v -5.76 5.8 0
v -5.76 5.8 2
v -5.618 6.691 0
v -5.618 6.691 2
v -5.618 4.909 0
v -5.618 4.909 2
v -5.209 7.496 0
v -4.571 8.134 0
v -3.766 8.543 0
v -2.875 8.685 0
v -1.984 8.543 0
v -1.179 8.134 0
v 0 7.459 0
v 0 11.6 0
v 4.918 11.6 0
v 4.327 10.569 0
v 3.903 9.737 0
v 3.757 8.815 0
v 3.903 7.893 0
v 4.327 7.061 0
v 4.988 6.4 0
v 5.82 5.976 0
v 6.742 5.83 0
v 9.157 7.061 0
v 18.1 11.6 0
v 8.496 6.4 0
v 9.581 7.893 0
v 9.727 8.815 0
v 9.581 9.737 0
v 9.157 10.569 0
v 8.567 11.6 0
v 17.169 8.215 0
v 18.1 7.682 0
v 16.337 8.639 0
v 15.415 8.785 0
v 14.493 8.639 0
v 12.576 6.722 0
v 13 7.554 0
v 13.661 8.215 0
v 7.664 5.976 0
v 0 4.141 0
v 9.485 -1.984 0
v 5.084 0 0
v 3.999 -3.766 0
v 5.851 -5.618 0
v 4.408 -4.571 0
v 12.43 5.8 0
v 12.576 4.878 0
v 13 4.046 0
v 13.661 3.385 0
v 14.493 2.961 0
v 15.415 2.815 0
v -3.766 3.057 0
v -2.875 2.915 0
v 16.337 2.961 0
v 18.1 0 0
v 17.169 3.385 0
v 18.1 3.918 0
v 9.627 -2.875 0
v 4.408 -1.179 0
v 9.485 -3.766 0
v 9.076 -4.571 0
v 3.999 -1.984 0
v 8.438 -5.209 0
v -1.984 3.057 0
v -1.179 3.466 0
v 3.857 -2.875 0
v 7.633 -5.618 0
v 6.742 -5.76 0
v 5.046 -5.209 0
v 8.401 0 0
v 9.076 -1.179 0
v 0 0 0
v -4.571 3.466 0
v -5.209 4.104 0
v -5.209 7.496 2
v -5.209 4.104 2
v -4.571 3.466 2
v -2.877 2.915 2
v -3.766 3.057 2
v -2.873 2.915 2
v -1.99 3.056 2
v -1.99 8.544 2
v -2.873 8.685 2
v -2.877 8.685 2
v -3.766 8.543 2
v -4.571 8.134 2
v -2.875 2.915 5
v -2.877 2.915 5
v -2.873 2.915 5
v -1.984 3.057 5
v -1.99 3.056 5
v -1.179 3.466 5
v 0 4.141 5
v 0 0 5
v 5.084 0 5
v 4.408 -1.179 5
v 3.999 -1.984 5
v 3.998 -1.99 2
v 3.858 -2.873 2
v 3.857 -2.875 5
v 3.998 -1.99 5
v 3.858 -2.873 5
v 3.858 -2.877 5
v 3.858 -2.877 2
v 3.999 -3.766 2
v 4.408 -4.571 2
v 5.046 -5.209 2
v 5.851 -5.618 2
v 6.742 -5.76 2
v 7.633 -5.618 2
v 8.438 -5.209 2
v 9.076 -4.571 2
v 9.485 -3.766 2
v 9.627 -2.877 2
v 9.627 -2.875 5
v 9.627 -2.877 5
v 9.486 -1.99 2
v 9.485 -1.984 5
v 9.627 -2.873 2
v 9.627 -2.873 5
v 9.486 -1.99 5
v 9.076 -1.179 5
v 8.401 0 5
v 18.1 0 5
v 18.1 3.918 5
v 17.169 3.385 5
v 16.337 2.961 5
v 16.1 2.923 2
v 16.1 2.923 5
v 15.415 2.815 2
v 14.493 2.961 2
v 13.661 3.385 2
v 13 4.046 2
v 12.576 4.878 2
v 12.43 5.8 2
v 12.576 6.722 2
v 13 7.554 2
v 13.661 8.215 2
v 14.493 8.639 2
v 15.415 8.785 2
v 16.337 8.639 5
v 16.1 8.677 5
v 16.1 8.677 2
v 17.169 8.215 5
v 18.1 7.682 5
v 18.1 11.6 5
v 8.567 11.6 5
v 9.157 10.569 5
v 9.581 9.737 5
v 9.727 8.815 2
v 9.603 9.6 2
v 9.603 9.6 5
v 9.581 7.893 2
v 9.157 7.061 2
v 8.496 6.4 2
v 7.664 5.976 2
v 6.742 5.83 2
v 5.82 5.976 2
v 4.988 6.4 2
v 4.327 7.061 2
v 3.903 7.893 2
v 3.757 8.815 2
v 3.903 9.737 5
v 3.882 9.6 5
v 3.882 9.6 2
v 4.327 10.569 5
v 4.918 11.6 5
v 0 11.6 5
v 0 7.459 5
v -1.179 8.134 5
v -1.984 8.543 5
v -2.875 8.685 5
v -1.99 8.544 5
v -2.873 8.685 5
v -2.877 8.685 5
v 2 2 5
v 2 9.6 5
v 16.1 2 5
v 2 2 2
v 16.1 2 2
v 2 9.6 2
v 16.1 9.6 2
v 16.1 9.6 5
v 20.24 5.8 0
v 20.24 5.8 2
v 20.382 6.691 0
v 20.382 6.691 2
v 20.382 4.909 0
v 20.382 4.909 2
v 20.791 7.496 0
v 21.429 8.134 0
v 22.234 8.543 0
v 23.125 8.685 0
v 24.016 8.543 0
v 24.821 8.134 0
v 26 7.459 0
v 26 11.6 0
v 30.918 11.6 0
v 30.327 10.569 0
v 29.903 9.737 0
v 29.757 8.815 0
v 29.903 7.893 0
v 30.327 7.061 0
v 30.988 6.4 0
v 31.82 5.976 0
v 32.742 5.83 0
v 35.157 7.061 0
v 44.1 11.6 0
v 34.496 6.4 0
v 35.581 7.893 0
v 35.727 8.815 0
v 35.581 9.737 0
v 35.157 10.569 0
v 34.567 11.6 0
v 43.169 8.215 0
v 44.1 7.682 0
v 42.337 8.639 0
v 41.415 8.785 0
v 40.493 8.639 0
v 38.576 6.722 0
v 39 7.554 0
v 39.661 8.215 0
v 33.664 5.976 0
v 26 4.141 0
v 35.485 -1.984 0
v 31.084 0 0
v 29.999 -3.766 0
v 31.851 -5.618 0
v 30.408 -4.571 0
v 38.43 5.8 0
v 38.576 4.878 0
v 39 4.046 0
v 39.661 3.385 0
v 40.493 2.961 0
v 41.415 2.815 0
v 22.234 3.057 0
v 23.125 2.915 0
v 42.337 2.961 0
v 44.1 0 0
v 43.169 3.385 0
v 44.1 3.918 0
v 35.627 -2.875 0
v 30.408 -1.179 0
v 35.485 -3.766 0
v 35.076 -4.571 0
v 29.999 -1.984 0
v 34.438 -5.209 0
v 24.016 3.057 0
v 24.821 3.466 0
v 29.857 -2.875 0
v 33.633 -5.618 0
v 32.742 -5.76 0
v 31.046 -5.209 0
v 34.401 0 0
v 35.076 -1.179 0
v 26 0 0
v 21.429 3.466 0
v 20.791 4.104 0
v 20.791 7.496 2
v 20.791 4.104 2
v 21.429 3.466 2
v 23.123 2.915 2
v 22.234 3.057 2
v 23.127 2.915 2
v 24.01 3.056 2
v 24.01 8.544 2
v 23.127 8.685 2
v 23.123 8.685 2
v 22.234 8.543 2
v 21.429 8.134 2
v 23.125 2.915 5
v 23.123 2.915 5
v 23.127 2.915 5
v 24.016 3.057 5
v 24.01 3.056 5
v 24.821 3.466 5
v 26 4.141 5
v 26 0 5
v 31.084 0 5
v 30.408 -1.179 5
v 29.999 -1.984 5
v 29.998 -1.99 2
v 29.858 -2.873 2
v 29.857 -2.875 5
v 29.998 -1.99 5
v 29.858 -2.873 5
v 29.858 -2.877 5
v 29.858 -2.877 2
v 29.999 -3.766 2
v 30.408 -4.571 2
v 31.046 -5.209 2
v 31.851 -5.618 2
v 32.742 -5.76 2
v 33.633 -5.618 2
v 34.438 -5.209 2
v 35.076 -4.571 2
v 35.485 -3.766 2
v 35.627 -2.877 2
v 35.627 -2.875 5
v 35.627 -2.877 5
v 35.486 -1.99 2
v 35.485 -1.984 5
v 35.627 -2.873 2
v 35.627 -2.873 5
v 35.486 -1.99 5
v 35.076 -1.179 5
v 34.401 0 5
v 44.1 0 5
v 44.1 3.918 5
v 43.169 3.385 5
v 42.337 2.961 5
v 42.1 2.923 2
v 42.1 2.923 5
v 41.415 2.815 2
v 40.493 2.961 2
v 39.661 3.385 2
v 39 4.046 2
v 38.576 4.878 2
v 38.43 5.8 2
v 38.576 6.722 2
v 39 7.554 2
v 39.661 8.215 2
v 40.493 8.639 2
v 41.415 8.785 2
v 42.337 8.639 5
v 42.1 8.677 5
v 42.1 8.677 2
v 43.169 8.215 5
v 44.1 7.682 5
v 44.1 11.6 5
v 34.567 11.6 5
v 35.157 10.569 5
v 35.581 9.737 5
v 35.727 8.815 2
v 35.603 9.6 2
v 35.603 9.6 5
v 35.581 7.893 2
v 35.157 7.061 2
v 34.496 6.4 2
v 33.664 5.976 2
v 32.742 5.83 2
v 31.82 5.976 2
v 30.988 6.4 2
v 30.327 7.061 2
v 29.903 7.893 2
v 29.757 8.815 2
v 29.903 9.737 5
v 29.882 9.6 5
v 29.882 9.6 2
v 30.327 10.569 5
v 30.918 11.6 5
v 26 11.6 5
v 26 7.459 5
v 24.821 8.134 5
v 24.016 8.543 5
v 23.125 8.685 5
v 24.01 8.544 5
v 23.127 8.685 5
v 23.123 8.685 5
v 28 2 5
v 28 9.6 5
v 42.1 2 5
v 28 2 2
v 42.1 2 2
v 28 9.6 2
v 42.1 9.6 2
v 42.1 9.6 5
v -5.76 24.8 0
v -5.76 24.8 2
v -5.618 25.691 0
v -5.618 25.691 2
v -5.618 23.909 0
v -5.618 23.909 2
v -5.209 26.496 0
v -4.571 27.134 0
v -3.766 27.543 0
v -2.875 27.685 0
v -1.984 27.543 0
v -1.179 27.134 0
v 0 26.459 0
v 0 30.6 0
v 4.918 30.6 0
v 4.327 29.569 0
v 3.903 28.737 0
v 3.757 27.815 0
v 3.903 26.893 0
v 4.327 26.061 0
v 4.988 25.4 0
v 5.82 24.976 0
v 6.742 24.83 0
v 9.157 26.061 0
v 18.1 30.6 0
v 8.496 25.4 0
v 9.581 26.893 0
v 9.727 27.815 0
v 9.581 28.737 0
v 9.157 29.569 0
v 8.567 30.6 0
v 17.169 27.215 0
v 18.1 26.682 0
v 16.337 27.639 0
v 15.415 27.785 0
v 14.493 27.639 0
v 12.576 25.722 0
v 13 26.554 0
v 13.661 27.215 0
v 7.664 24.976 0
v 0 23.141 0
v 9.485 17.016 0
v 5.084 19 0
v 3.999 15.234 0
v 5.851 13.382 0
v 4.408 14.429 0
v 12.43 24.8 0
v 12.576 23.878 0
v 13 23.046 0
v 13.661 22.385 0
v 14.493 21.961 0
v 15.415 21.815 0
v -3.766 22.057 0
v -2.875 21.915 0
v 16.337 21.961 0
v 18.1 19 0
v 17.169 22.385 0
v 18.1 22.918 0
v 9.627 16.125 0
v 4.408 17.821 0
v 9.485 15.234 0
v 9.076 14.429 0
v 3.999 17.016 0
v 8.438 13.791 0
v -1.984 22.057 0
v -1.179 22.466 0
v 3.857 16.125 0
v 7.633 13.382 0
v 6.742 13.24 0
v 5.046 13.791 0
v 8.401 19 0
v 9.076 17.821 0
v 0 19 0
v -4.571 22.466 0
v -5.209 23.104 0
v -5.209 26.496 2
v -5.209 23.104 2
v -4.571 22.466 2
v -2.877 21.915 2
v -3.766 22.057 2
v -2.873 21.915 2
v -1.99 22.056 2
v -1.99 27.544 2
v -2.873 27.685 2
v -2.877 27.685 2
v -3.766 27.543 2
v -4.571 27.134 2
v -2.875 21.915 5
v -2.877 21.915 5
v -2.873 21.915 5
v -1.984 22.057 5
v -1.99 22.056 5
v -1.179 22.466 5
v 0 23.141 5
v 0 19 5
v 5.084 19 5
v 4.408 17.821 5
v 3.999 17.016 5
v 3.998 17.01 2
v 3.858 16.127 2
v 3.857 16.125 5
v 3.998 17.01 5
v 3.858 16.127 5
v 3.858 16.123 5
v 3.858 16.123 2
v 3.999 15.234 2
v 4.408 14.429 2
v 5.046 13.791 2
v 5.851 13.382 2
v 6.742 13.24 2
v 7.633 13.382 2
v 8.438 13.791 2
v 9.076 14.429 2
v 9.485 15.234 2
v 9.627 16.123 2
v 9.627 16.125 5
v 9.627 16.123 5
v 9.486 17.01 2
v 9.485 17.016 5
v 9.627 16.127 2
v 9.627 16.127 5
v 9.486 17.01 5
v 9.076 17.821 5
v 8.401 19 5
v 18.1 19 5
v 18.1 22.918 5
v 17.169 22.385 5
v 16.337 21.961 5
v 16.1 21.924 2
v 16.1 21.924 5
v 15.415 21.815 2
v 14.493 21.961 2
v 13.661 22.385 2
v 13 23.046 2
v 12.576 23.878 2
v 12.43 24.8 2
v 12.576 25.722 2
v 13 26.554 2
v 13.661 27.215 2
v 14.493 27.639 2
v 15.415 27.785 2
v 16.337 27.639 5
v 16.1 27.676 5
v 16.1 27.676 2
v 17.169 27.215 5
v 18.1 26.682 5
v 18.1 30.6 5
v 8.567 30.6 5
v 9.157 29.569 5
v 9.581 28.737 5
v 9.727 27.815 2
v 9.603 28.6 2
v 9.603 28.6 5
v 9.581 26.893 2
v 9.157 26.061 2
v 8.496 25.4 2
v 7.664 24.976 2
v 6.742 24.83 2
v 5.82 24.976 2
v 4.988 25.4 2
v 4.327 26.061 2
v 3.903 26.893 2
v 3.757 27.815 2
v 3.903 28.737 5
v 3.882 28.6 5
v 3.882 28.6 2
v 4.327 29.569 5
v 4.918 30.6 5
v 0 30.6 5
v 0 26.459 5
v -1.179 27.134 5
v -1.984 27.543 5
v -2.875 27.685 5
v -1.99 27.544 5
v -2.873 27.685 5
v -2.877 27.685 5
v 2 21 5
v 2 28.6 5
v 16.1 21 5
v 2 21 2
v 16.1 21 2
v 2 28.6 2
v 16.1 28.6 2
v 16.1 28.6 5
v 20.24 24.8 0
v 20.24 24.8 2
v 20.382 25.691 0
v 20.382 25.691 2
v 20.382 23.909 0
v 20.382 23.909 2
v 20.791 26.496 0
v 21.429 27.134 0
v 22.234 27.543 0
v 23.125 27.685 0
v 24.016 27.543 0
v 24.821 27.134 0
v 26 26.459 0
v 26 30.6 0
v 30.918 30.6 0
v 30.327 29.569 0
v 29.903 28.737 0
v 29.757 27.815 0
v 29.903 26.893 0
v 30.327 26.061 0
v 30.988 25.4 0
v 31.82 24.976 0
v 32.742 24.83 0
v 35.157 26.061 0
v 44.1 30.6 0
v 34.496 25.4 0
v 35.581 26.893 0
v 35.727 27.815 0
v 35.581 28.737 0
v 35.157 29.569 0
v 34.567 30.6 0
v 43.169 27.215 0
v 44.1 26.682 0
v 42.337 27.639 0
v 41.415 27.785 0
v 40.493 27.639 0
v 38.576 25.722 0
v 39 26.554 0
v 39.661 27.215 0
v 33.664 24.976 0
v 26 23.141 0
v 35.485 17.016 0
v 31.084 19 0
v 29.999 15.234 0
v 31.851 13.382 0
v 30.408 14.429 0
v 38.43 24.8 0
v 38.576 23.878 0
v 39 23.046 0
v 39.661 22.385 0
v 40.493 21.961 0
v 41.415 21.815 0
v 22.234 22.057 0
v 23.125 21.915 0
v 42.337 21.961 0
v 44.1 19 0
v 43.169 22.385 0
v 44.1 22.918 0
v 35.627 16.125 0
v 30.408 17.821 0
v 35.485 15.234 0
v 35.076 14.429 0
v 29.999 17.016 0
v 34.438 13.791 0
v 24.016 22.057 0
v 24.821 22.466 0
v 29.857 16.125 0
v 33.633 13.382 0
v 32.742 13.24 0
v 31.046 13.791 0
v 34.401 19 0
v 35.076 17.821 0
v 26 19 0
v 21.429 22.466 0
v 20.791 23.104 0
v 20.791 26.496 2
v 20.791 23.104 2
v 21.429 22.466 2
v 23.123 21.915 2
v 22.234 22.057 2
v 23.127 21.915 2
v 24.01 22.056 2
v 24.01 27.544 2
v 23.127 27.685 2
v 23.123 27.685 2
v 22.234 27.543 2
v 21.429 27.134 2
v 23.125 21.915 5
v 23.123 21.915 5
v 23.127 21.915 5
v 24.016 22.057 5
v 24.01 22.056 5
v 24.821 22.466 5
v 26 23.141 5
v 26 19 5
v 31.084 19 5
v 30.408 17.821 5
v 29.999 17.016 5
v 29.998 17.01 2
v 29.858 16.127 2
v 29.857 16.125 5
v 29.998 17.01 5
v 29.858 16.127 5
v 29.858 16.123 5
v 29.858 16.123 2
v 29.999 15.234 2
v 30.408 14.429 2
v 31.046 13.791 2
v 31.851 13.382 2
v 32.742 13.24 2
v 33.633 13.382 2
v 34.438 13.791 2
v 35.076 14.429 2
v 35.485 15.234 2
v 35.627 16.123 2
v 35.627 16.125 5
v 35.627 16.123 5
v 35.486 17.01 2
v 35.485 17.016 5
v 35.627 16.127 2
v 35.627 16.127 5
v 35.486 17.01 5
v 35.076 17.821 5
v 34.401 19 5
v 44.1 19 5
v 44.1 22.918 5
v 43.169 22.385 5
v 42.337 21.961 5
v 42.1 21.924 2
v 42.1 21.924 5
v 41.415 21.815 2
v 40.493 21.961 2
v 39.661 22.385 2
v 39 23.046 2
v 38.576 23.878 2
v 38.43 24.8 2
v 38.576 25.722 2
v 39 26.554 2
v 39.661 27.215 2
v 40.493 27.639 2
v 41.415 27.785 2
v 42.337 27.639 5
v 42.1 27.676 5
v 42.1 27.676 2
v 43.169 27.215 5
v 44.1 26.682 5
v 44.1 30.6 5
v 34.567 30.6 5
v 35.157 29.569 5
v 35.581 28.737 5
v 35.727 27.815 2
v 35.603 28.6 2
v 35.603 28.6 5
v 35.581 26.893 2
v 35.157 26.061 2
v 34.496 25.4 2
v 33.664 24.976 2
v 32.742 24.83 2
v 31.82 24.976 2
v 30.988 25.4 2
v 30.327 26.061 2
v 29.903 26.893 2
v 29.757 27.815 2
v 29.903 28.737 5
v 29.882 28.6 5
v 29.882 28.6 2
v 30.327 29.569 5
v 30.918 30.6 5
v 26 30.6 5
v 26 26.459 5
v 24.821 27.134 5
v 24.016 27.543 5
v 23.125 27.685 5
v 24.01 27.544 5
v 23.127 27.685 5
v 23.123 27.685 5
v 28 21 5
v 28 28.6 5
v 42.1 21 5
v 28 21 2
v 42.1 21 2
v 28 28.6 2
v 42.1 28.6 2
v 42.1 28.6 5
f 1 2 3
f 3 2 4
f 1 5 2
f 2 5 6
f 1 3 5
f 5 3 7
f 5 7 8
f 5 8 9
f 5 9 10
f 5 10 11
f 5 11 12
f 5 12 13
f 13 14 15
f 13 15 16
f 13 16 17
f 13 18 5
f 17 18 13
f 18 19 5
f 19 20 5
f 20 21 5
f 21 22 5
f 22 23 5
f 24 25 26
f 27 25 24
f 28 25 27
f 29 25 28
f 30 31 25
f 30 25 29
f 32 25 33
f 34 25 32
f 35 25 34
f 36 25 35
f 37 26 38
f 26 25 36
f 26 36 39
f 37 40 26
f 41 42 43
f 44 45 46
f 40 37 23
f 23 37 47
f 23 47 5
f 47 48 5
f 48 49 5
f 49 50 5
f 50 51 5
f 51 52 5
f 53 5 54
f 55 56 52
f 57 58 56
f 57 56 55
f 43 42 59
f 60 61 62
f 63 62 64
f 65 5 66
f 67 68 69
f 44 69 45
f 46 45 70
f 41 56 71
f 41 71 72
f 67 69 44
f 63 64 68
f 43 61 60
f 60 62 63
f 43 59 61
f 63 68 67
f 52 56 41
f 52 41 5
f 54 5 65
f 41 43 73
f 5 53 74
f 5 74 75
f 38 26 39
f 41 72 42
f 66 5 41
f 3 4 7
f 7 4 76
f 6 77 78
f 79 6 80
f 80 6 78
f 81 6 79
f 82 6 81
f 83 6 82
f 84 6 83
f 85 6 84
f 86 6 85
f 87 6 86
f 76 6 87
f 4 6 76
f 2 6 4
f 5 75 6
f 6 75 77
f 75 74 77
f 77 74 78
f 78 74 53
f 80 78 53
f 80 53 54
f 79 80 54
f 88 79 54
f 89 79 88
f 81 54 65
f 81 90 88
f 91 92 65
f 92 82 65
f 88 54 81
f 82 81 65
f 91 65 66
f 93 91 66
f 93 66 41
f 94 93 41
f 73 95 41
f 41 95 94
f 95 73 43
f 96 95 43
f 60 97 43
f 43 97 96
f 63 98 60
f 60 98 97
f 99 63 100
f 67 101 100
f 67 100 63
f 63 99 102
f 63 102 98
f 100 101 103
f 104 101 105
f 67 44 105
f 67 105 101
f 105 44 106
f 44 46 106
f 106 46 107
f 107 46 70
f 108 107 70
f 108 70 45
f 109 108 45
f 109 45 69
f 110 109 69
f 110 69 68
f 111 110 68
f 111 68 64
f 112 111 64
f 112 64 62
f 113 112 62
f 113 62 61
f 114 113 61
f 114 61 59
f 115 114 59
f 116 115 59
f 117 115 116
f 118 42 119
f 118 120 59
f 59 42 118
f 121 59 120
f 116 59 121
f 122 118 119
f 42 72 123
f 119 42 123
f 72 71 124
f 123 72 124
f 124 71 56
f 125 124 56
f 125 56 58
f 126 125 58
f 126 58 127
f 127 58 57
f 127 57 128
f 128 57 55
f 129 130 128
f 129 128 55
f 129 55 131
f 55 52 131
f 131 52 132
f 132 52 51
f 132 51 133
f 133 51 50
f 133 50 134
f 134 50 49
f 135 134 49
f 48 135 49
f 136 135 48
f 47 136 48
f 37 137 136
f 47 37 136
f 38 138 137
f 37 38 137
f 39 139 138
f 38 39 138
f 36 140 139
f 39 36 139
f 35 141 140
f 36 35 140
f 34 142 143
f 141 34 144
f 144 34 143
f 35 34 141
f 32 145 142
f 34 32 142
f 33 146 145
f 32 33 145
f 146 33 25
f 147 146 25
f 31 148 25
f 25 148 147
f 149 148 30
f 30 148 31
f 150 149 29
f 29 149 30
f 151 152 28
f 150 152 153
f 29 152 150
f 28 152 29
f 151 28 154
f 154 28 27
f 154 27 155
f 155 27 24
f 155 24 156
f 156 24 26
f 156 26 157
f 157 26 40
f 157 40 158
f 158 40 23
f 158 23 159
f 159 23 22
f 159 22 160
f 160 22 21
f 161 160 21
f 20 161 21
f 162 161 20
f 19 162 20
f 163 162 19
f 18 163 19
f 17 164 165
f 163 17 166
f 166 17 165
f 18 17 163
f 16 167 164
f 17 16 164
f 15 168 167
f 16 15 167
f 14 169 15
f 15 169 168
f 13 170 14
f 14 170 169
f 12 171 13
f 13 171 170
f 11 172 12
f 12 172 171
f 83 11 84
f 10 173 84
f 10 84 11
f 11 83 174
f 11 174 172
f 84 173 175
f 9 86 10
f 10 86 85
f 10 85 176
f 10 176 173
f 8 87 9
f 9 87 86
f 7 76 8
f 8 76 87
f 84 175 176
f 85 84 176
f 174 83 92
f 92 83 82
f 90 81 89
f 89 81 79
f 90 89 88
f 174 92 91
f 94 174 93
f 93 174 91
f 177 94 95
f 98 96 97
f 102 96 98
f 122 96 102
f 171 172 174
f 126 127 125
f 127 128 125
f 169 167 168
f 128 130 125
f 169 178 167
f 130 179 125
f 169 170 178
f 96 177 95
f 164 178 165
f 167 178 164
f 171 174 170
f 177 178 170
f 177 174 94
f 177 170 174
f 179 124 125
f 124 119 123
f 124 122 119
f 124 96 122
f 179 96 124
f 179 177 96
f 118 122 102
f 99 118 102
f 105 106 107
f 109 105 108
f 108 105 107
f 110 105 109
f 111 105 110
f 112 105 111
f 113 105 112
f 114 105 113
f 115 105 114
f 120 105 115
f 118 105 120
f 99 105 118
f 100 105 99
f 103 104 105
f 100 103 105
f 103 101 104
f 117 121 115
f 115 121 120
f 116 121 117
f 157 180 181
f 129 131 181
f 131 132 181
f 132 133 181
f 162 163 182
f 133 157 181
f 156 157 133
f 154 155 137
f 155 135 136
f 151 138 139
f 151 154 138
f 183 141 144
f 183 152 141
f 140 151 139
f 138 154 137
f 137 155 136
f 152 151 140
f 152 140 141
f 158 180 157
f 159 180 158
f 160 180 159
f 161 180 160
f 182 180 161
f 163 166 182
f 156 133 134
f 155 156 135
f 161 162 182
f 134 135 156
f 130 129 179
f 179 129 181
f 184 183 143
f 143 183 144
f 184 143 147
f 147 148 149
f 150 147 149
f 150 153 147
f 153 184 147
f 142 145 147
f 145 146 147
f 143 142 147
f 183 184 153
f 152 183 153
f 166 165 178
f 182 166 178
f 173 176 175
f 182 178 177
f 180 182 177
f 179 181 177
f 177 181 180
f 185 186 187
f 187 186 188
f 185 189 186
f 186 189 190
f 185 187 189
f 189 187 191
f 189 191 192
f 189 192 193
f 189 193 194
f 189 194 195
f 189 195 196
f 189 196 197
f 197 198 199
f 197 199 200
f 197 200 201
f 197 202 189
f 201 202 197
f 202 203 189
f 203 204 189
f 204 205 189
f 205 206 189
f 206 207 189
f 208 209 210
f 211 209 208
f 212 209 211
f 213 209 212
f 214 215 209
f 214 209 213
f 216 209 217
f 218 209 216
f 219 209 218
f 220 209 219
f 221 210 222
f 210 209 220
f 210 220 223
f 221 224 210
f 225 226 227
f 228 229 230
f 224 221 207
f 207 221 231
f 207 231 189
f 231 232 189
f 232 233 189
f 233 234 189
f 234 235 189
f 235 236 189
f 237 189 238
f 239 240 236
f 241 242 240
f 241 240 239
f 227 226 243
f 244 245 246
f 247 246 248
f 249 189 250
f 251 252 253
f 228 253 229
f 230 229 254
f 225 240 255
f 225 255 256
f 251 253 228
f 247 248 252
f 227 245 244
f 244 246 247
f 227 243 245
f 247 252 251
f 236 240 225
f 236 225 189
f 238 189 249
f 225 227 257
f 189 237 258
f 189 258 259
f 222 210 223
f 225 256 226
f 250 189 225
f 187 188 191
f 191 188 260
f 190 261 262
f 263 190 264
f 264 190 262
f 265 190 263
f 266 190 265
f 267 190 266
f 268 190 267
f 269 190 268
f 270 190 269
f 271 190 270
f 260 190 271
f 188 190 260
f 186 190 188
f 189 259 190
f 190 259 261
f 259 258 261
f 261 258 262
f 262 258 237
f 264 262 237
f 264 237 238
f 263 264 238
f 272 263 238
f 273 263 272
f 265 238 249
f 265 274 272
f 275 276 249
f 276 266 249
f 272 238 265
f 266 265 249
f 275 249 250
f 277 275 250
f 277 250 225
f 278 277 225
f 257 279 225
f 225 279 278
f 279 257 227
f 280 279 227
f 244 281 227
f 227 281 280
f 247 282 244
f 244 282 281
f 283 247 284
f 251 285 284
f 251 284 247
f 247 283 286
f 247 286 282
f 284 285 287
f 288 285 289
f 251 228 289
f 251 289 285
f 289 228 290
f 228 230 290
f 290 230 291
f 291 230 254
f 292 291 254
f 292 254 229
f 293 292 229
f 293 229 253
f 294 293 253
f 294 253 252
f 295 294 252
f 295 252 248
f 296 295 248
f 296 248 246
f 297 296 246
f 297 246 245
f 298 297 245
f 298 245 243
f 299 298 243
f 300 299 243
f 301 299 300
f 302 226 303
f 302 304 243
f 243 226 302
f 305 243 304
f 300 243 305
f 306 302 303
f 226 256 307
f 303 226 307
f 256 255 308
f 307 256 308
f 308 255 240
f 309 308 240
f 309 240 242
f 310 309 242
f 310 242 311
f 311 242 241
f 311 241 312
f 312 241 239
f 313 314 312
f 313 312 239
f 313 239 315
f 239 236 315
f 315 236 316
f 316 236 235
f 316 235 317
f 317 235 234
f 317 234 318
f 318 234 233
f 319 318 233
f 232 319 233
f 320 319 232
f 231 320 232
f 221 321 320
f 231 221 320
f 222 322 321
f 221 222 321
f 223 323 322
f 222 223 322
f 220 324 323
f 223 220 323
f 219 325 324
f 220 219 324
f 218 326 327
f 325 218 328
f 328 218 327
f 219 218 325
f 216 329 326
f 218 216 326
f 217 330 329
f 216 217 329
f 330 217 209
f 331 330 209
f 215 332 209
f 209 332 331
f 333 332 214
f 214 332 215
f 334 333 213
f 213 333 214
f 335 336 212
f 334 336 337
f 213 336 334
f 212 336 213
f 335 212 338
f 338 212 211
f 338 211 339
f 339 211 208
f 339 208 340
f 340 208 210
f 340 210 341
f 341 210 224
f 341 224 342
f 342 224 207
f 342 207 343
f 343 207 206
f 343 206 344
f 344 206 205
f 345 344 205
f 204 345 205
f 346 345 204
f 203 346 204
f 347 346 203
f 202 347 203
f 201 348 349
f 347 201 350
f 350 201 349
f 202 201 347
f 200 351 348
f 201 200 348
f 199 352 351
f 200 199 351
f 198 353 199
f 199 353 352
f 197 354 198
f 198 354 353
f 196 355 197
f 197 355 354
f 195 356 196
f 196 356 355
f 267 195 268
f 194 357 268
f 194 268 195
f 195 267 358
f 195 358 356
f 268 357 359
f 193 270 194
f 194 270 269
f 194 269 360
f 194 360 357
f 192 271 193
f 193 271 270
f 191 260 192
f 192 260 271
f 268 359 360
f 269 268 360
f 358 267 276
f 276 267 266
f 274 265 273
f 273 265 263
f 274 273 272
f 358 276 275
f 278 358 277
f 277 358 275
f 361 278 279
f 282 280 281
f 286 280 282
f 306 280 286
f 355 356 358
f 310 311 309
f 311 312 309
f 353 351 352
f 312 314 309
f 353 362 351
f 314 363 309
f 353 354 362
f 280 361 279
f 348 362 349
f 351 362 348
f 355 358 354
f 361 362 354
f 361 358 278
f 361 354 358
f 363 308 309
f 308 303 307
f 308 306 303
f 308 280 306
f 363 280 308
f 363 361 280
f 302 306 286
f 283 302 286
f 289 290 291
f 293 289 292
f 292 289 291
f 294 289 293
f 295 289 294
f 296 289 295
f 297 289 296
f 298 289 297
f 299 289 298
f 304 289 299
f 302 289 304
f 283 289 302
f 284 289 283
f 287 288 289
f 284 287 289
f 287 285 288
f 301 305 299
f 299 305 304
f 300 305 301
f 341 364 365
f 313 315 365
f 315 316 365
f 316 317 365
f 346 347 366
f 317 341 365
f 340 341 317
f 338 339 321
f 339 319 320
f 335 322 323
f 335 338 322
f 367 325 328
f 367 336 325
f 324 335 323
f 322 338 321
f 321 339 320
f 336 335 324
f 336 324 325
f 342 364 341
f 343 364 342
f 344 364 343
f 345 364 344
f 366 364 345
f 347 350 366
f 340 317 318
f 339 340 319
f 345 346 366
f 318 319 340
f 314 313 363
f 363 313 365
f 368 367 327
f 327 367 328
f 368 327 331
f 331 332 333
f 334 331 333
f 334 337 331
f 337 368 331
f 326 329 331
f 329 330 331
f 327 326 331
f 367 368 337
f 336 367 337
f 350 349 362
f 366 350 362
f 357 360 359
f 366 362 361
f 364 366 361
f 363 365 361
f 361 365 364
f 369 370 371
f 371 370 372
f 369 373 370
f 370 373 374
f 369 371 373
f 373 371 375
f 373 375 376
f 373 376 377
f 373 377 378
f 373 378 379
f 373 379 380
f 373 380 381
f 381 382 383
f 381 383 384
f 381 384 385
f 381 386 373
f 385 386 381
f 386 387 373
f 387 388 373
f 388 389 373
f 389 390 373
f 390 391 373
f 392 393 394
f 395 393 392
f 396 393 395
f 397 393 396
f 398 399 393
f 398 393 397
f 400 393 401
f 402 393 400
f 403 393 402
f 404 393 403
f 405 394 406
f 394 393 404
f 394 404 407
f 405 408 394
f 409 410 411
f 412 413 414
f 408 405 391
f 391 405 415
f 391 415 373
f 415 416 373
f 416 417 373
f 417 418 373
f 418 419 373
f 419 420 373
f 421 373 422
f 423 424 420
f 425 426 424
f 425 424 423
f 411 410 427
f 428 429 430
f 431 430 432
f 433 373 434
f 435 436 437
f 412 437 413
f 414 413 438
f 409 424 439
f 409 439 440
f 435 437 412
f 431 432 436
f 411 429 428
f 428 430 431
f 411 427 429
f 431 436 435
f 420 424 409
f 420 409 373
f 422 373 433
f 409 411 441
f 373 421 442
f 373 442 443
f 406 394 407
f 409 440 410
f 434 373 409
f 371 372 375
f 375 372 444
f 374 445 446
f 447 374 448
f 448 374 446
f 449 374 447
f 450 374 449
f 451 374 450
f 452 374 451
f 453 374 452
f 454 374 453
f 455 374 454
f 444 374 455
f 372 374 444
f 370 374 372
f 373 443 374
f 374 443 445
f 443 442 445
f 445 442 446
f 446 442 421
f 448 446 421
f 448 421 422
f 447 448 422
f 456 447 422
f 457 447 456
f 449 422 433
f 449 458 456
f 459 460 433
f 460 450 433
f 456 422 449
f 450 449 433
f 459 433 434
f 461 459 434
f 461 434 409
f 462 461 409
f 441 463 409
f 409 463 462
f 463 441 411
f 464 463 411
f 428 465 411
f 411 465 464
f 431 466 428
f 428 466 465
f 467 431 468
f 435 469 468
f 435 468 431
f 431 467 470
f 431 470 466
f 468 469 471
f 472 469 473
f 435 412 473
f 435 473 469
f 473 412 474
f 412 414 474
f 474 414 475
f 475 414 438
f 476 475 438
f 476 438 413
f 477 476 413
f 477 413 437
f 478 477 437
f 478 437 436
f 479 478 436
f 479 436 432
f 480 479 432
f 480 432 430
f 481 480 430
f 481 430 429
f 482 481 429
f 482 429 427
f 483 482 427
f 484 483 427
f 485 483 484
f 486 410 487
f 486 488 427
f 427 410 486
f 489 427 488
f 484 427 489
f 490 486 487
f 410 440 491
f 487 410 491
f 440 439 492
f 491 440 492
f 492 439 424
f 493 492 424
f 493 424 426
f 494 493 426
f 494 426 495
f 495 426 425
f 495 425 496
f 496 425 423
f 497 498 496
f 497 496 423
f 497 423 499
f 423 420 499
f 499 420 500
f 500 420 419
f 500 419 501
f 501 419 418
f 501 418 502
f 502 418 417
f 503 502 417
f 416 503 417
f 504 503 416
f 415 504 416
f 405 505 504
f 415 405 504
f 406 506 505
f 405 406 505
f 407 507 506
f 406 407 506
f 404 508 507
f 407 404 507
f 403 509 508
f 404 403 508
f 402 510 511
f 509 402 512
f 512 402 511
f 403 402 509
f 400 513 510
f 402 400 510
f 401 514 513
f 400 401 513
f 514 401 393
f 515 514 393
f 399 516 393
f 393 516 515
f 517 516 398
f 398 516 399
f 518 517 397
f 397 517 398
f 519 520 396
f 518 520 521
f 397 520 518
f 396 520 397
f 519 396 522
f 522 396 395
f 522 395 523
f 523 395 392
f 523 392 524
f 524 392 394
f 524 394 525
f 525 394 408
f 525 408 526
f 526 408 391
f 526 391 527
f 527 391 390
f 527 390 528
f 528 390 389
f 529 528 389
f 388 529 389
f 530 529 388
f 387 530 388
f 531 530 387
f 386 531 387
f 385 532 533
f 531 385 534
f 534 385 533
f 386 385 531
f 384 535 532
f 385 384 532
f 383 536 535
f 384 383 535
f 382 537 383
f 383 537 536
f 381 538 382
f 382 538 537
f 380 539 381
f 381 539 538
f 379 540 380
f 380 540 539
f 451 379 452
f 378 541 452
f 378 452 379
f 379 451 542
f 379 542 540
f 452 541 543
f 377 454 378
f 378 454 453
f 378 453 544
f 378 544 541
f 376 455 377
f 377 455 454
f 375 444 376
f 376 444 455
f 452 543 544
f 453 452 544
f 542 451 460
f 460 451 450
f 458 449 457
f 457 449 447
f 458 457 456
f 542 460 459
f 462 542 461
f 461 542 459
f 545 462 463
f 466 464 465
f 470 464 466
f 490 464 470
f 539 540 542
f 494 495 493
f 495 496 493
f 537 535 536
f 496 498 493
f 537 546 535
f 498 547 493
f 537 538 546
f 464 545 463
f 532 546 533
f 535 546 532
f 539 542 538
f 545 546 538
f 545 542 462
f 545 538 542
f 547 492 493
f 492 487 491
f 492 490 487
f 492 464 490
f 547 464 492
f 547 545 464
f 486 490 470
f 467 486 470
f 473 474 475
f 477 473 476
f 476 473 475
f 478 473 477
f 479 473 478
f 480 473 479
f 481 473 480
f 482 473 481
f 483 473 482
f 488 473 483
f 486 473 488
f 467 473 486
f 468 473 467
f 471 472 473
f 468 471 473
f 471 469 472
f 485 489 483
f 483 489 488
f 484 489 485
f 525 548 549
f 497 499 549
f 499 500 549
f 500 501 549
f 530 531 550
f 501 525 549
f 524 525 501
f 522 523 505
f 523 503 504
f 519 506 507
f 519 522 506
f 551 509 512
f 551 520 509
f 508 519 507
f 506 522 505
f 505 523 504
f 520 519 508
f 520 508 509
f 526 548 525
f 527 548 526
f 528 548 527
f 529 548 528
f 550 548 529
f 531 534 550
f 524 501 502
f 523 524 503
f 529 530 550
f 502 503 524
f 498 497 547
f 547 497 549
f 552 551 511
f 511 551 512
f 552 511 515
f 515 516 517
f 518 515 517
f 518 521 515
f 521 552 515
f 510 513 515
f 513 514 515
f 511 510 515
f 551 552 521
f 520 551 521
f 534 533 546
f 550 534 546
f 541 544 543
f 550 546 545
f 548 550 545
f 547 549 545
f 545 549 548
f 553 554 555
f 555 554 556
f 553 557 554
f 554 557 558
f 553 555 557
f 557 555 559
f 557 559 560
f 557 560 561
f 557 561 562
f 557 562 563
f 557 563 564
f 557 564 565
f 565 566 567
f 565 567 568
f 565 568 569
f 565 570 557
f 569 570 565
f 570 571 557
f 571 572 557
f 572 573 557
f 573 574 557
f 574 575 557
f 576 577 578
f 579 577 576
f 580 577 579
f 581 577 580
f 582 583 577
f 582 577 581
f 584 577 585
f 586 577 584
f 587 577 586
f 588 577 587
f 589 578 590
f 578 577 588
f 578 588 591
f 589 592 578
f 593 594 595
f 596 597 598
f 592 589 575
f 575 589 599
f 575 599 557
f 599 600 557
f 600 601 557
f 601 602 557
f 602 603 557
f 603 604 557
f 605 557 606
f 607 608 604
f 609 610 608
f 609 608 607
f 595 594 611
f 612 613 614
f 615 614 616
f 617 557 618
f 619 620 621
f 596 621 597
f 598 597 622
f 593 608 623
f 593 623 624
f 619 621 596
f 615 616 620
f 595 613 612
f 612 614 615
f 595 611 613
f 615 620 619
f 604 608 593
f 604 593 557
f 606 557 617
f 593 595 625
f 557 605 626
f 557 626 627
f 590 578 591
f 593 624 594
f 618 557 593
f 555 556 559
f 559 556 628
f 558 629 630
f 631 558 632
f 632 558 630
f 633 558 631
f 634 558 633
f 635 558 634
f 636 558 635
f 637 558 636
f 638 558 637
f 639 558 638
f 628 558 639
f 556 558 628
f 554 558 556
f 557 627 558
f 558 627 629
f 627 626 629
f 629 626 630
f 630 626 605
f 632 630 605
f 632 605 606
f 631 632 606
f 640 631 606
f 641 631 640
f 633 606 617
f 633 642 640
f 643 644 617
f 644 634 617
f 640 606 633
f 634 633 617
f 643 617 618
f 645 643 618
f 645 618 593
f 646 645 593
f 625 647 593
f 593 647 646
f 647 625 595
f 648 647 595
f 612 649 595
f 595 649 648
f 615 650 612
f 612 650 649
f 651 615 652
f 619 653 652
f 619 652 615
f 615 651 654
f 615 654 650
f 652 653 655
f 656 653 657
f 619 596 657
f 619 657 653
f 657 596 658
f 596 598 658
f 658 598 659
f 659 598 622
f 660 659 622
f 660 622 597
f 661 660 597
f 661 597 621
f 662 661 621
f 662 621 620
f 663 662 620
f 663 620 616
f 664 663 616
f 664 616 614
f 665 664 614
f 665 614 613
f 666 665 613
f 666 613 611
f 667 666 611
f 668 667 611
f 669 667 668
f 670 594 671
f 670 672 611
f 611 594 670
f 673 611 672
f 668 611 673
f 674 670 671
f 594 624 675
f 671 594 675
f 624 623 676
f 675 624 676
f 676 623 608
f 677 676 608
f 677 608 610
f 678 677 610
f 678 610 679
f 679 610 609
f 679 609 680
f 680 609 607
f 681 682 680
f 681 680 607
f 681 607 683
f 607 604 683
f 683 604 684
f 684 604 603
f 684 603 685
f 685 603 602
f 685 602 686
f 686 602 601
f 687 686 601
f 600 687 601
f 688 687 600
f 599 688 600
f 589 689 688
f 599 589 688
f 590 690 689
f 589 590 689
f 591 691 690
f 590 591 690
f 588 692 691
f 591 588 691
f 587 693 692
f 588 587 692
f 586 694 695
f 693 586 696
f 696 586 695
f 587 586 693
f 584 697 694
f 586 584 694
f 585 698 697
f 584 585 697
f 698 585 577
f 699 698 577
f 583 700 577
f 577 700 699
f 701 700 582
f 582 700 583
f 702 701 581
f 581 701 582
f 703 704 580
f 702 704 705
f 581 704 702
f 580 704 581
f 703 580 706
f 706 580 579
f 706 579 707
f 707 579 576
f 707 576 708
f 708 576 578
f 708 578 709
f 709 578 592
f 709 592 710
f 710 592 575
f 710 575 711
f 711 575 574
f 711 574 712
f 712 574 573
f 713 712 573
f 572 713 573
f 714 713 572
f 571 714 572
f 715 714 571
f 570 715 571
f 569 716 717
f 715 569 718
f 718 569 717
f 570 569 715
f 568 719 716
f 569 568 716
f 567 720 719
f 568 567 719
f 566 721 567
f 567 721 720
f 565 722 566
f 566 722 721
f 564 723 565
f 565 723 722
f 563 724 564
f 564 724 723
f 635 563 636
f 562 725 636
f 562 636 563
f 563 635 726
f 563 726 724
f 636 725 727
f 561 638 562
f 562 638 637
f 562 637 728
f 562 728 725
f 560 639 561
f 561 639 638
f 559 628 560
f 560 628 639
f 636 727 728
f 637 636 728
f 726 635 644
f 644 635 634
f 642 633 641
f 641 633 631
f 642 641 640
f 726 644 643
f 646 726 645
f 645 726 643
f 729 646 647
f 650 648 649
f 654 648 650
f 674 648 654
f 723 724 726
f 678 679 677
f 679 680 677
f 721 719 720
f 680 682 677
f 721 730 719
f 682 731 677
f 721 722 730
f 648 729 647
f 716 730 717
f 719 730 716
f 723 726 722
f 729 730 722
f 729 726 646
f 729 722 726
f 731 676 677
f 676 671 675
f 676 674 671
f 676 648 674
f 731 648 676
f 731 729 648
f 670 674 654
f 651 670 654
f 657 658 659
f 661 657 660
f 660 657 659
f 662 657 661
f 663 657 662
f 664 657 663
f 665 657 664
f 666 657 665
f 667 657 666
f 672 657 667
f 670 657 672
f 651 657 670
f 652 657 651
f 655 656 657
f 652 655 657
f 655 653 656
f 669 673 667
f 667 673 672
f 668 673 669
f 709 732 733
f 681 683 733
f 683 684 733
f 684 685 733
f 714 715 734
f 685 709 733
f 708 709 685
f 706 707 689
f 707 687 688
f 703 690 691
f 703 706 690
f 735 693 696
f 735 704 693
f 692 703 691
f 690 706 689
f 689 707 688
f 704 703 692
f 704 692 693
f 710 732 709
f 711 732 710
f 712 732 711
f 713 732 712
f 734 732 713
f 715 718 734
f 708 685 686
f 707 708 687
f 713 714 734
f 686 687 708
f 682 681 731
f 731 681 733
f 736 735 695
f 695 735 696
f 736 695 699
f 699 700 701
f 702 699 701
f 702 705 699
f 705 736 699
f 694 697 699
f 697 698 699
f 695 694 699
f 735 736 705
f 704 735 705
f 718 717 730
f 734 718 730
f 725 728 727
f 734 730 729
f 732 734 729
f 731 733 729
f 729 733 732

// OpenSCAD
// file: ../offset.scad
//  openSCAD polyline offset routine retrieved from newgroup
//  https://forum.openscad.org/Polygon-Offset-Function-td17186.html

// given a polygon, offset each vertex using the corner offset method above
// note: this can produce self-intersections depending on the 'curvature' and offset
function offset_pts(pts, dist) = 
  _offset_poly(_iterative_remove_edges(pts, dist), dist);
  
  
module test(){
  pts1 =  [[35, -8], [35, 7], [20, 12], [-10, 60], [-25, 65], [-40, 60], [-30, 50], [-21, 18], [-21, -18], [-30, -50], [-40, -60], [-25, -65], [-10, -60], [20, -13]];
  pts2 = offset_pts(pts1, -0.5);
  difference(){
      translate([0,0,1]) color("red") polygon(pts1);
      polygon(pts2);
  }
  polygon(pts2);
}

test();
  
  
 
//  Helper functions

// given two points, a, b, find equation for line that is parallel to line 
// segment but offset to the right by offset dist
// equation is of the form c*x+d*y=e
// represented as array [ c, d, e ]
function _seg2eq(pa, pb, dist) = 
  let (ab = [pb[0]-pa[0], pb[1]-pa[1]])
  let (abl_un = [-ab[1], ab[0]])
  let (abl_len = sqrt(abl_un[0]*abl_un[0] + abl_un[1]*abl_un[1]))
  let (abl = [ abl_un[0]/abl_len, abl_un[1]/abl_len ])
  [ abl[0], abl[1], abl[0]*pa[0] + abl[1]*pa[1] - dist ];

// given two equations for lines, solve two equations to find intersection
function _solve2eq(eq1, eq2) = 
  let (a=eq1[0], b=eq1[1], c = eq1[2], d=eq2[0], e=eq2[1], f=eq2[2])
  let (det=a*e-b*d)
  [ (e*c-b*f)/det, (-d*c+a*f)/det ];

// given a corner as two line segments, AB and BC, find the new corner B' that results 
// when both line segments are offet.  Works by generating two equations and then solving
function _offset_corner(pa, pb, pc, dist) = 
  _solve2eq(_seg2eq(pa, pb, dist), _seg2eq(pb, pc, dist));

//echo(_ensurePathNotClosed([[1,2],[2,3],[3,4],[1,2]]));

// given a polygon, offset each vertex using the corner offset method above
// note: this can produce self-intersections depending on the 'curvature' and offset
function _offset_poly(p, dist) = 
  [ 
  for (i=[0:len(p)-1]) 
    i == 0 ? _offset_corner(p[len(p)-1], p[i], p[i+1], dist) :
    i == len(p)-1 ? _offset_corner(p[i-1], p[i], p[0], dist) :
    _offset_corner(p[i-1], p[i], p[i+1], dist)
  ];

// each segment of a polygon will 'vanish' at some offset value (unless adjacent 
// segments are parallel).  Compute the offset at which each segment vanishes 
// (produces 'nan' or plus or minus infinity when adjacent segments parallel)
function _offset_limit(p) = 
  let (N = len(p))
  let (offp = _offset_poly(p, 1))  // each vertex adjusted for unit of offset
  [ for (i=[0:N-1])  // for each segment
    // equations for segment for each vertex (angle bisector)
    let (eqv1 = _seg2eq(p[i], offp[i], 0),  eqv2 = _seg2eq(p[(i+1)%N], offp[(i+1)%N], 0))
    let (singv = _solve2eq(eqv1, eqv2))  // 'singular' vertex where edge vanishes
    let (offv = offp[i]-p[i])  // vertex shifts this much per unit of offset
    let (targetv = singv - p[i])  // what offset produces this coordinate?
    // essentially quotient of lengths, but need to take into account negative offsets
    // use dot product to find cosine of angle, should be 1 or -1
    let (sgn = (offv[0]*targetv[0] + offv[1]*targetv[1])/(norm(offv)*norm(targetv)))
    sgn * norm(targetv)/norm(offv)
  ]
;
  
// transform polygon into sequence of edges as equations, skipping flipped edges
// and then transform back into vertices by solving adjacent equations
function _remove_edges(p, dist) = 
  let (N = len(p), offlim = _offset_limit(p))
  let (eqlist = [ for (i=[0:N-1])
    if (!(dist/offlim[i] > 1))
      _seg2eq(p[i], p[(i+1)%N], 0)
    ])
  let (N2 = len(eqlist))
  [ for (i=[0:N2-1])
    _solve2eq(eqlist[(i+N2-1)%N2], eqlist[i]) ];

function _iterative_remove_edges(p, dist) =
  let (cleaned = _remove_edges(p, dist))
  len(cleaned) == len(p) ? p : _iterative_remove_edges(cleaned, dist);

// given a polygon, offset each vertex using the corner offset method above
// note: this can produce self-intersections depending on the 'curvature' and offset
function offset_poly(pts, dist) = 
  _offset_poly(_iterative_remove_edges(pts, dist), dist);


  
  
  
// file: ../puzzle-connector.scad
use <offset.scad>

module puzzle_connector_pear(diameter, height, inset=0, skirt=[0, 0]) {
	module connector(diameter, height, inset) {
		linear_extrude(height=height)  {
			difference() {
				hull() {
					circle(d=diameter/2-inset*2, $fn=20);
					translate([diameter/2,0,0])
						circle(d=diameter-inset*2, $fn=20);
				};
				translate([-diameter/2,0,0])
					square(size=[diameter,diameter], center=true);
			}
		}
	}
	if ((skirt[0] > 0) && (skirt[1] > 0)) {
		difference() {
			translate([0, 0, height])
				connector(diameter, skirt[0], inset);
			translate([skirt[1], -(diameter-inset*2)/2, height])
				cube([diameter-inset*2, diameter-inset*2, skirt[0]]);
		}
	}
	connector(diameter, height, inset);
}

module puzzle_connector_round(diameter, base, height, inset=0, skirt=[0, 0]) {
	module connector(diameter, base, height, inset) {
		translate([0, -base/2, 0])
			union() {
				linear_extrude(height=height) {
					translate([(diameter + base/4)/2, base/2, 0])
						circle(d = diameter-inset*2, $fn=20);
					translate([0, inset, 0])
						square([base, base - inset*2]);
				}
			}
	}
	if ((skirt[0] > 0) && (skirt[1] > 0)) {
		difference() {
			translate([0, 0, height])
				connector(diameter, base, skirt[0], inset);
			translate([skirt[1], -(diameter-inset*2)/2, height])
				cube([diameter-inset*2, diameter-inset*2, skirt[0]]);
		}
	}
	connector(diameter, base, height, inset);
}

difference() {
	puzzle_connector_round(5, 2.5, 2, -0.3, [1, 1]);
	puzzle_connector_round(5, 2.5, 2, 0, [1, 1]);
}

translate([0, 7, 0]) {
	difference() {
		puzzle_connector_pear(5, 2, -0.3, [1, 1]);
		puzzle_connector_pear(5, 2, 0, [1, 1]);
	}
}
// file: ../puzzle-base.scad
use <puzzle-connector.scad>

module puzzle_base(l, w, h, c, b=[0, 0]) {

	c_offset = (l-c*1.8)/2;
	c_width = (w - c)/2;
	c_scale = (c+0.3)/c;

	difference() {

		union() {
			cube([l, w, h], center=false);

			translate([0.01, w/2, 0])
				rotate([0, 0, 180])
				puzzle_connector_pear(c, h, 0, [b[1], b[0]]);

			translate([c/2+c_offset, 0.01, 0])
				rotate([0, 0, -90])
				puzzle_connector_pear(c, h, 0, [b[1], b[0]]);

			translate([0, 0, h]) {
				difference() {
					cube([l, w, b[1]], center=false);
					translate([b[0], b[0], 0])
						cube([l-2*b[0], w-2*b[0], b[1]], center=false);
				}
			}
		}

		translate([c/2+c_offset, w+0.1, 0])
			rotate([0, 0, -90])
		    puzzle_connector_pear(c, h+b[1], -0.1);

		translate([l+0.2, w/2, 0])
			rotate([0, 0, 180])
			puzzle_connector_pear(c, h+b[1], -0.1);
	}
}

spacing = 2.5;
distance = 5 + spacing;     
plate_height = 14;
plate_thickness = 5;
border=2;

translate([0, 0, 0])
puzzle_base(
	plate_height + 2*plate_thickness,
	distance + 2*plate_thickness,
	plate_thickness,
	(distance + 2*plate_thickness)/2.3,
	[border, border]);

translate([plate_height+2*plate_thickness+0.2, 0, 0])
puzzle_base(
	plate_height + 2*plate_thickness,
	distance + 2*plate_thickness,
    plate_thickness,
	(distance + 2*plate_thickness)/2.3,
	[border, border]);

translate([0, distance + 2*plate_thickness+0.2, 0])
puzzle_base(
	plate_height + 2*plate_thickness,
	distance + 2*plate_thickness,
	plate_thickness,
	(distance + 2*plate_thickness)/2.3,
	[border, border]);

translate([plate_height+2*plate_thickness+0.2, distance + 2*plate_thickness+0.2, 0])
puzzle_base(
	plate_height + 2*plate_thickness,
	distance + 2*plate_thickness,
    plate_thickness,
	(distance + 2*plate_thickness)/2.3, 
	[border, border]);

//use <braille-letter.scad>
//translate([plate_thickness, plate_thickness, plate_thickness])
//	* braille_letter("A");
// file: ../braille-letter.scad
// mm sizes from http://dots.physics.orst.edu/gs_layout.html
radius = 0.25;
spacing = 2.5;
distance = 3.75 + spacing;

plate_height = 10;
plate_thickness = 2;

$fn = 10;

module letter(bitmap) {
	row_size = 2;
	col_size = 3;
	bitmap_size = row_size * col_size;
	
	function loc_x(loc) = floor(loc / row_size) * spacing + spacing;
	function loc_y(loc) = loc % row_size * spacing  + (distance-spacing)/2;

	for (loc = [0:bitmap_size - 1]) {
		if (bitmap[loc] != 0) {
			union() {
				translate(v = [loc_x(loc), loc_y(loc), 0]) {
					sphere(radius = radius* bitmap[loc], center = true);
				}
			}
		}
	}
}


module braille_char(char) {
	if (char == "A") {
		letter([
			1,0,
			0,0,
			0,0
		]);
	} else if (char == "B") {
		letter([
			1,0,
			1,0,
			0,0
		]);
	} else if (char == "C") {
		letter([
			1,1,
			0,0,
			0,0
		]);
	} else if (char == "D") {
		letter([
			1,1,
			0,1,
			0,0
		]);
	} else if (char == "E") {
		letter([
			1,0,
			0,1,
			0,0
		]);
	} else if (char == "F") {
		letter([
			1,1,
			1,0,
			0,0
		]);
	} else if (char == "G") {
		letter([
			1,1,
			1,1,
			0,0
		]);
	} else if (char == "H") {
		letter([
			1,0,
			1,1,
			0,0
		]);
	} else if (char == "I") {
		letter([
			0,1,
			1,0,
			0,0
		]);
	} else if (char == "J") {
		letter([
			0,1,
			1,1,
			0,0
		]);
	} else if (char == "K") {
		letter([
			1,0,
			0,0,
			1,0
		]);
	} else if (char == "L") {
		letter([
			1,0,
			1,0,
			1,0
		]);
	} else if (char == "M") {
		letter([
			1,1,
			0,0,
			1,0
		]);
	} else if (char == "N") {
		letter([
			1,1,
			0,1,
			1,0
		]);
	} else if (char == "O") {
		letter([
			1,0,
			0,1,
			1,0
		]);
	} else if (char == "P") {
		letter([
			1,1,
			1,0,
			1,0
		]);
	} else if (char == "Q") {
		letter([
			1,1,
			1,1,
			1,0
		]);
	} else if (char == "R") {
		letter([
			1,0,
			1,1,
			1,0
		]);
	} else if (char == "S") {
		letter([
			0,1,
			1,0,
			1,0
		]);
	} else if (char == "T") {
		letter([
			0,1,
			1,1,
			1,0
		]);
	} else if (char == "U") {
		letter([
			1,0,
			0,0,
			1,1
		]);
	} else if (char == "V") {
		letter([
			1,0,
			1,0,
			1,1
		]);
	} else if (char == "W") {
		letter([
			0,1,
			1,1,
			0,1
		]);
	} else if (char == "X") {
		letter([
			1,1,
			0,0,
			1,1
		]);
	} else if (char == "Y") {
		letter([
			1,1,
			0,1,
			1,1
		]);
	} else if (char == "Z") {
		letter([
			1,0,
			0,1,
			1,1
		]);
	} else if (char == "CH") {
		letter([
			1,0,
			0,0,
			0,1
		]);
	} else if (char == "SH") {
		letter([
			1,1,
			0,0,
			0,1
		]);
	} else if (char == "TH") {
		letter([
			1,1,
			0,1,
			0,1
		]);
	} else if (char == "WH") {
		letter([
			1,0,
			0,1,
			0,1
		]);
	} else if (char == "OU") {
		letter([
			1,0,
			1,1,
			0,1
		]);
	} else if (char == "ST") {
		letter([
			0,1,
			0,0,
			1,0
		]);
	} else if (char == "AND") {
		letter([
			1,1,
			1,0,
			1,1
		]);
	} else if (char == "FOR") {
		letter([
			1,1,
			1,1,
			1,1
		]);
	} else if (char == "OF") {
		letter([
			1,0,
			1,1,
			1,1
		]);
	} else if (char == "THE") {
		letter([
			0,1,
			1,0,
			1,1
		]);
	} else if (char == "WITH") {
		letter([
			0,1,
			1,1,
			1,1
		]);
	} else if (char == "IN") {
		letter([
			0,0,
			0,1,
			1,0
		]);
	} else if (char == "EN") {
		letter([
			0,0,
			1,0,
			0,1
		]);
	} else if (char == "CON") {
		letter([
			0,0,
			1,1,
			0,0
		]);
	} else if (char == "DIS") {
		letter([
			0,0,
			1,1,
			0,1
		]);
	} else if (char == "COM") {
		letter([
			0,0,
			0,0,
			1,1
		]);
	} else if (char == "BE") {
		letter([
			0,0,
			1,0,
			1,0
		]);
	} else if (char == "EA") {
		letter([
			0,0,
			1,0,
			0,0
		]);
	} else if (char == "BB") {
		letter([
			0,0,
			1,0,
			1,0
		]);
	} else if (char == "CC") {
		letter([
			0,0,
			1,1,
			0,0
		]);
	} else if (char == "DD") {
		letter([
			0,0,
			1,1,
			0,1
		]);
	} else if (char == "FF") {
		letter([
			0,0,
			1,1,
			1,0
		]);
	} else if (char == "GG") {
		letter([
			0,0,
			1,1,
			1,1
		]);
	} else if (char == "AR") {
		letter([
			0,1,
			0,1,
			1,0
		]);
	} else if (char == "BLE") {
		letter([
			0,1,
			0,1,
			1,1
		]);
	} else if (char == "ED") {
		letter([
			1,1,
			1,0,
			0,1
		]);
	} else if (char == "ER") {
		letter([
			1,1,
			1,1,
			0,1
		]);
	} else if (char == "GH") {
		letter([
			1,0,
			1,0,
			0,1
		]);
	} else if (char == "ING") {
		letter([
			0,1,
			0,0,
			1,1
		]);
	} else if (char == "OW") {
		letter([
			0,1,
			1,0,
			0,1
		]);
	} else if (char == "cap") {
		letter([
			0,0,
			0,0,
			0,1
		]);
	} else if (char == "#") {
		letter([
			0,1,
			0,1,
			1,1
		]);
	} else if (char == "let") {
		letter([
			0,0,
			0,1,
			0,1
		]);
	} else if (char == ".") {
		letter([
			0,0,
			1,1,
			0,1
		]);
	} else if (char == "?") {
		letter([
			0,0,
			1,0,
			1,1
		]);
	} else if (char == "!") {
		letter([
			0,0,
			1,1,
			1,0
		]);
	} else if (char == "-") {
		letter([
			0,0,
			0,0,
			1,1
		]);
	} else if (char == "quote") {
		letter([
			0,0,
			0,1,
			1,1
		]);
	} else if (char == "1") {
		letter([
			1,0,
			0,0,
			0,0
		]);
	} else if (char == "2") {
		letter([
			1,0,
			1,0,
			0,0
		]);
	} else if (char == "3") {
		letter([
			1,1,
			0,0,
			0,0
		]);
	} else if (char == "4") {
		letter([
			1,1,
			0,1,
			0,0
		]);
	} else if (char == "5") {
		letter([
			1,0,
			0,1,
			0,0
		]);
	} else if (char == "6") {
		letter([
			1,1,
			1,0,
			0,0
		]);
	} else if (char == "7") {
		letter([
			1,1,
			1,1,
			0,0
		]);
	} else if (char == "8") {
		letter([
			1,0,
			1,1,
			0,0
		]);
	} else if (char == "9") {
		letter([
			0,1,
			1,0,
			0,0
		]);
	} else if (char == "0") {
		letter([
			0,1,
			1,1,
			0,0
		]);
	} else {
		echo("Invalid Character: ", char);
	}

}

module braille_letter(char) {
	union() {
		translate([0,0,plate_thickness])
			braille_char(char);
		color([0,0,1]) {
			cube([plate_height, distance, plate_thickness]);
		}
	}
}

module braille_str(chars) {
	union() {
		for (count = [0:len(chars)-1]) {
			translate(v = [0, count * (distance+spacing), plate_thickness]) {
				braille_letter(chars[count]);
			}
		}
	}
}

module braille_alphabet() {

	translate([0,0,-plate_thickness*5*0])
		braille_str("ABCDEF", 6);

	translate([0,0,-plate_thickness*5*1])
		braille_str("GHIJKL", 6);

	translate([0,0,-plate_thickness*5*2])
		braille_str("MNOPQR", 6);

	translate([0,0,-plate_thickness*5*3])
		braille_str("STUVWX", 6);

	translate([0,0,-plate_thickness*5*4])
		braille_str("YZ", 6);

}

translate([-plate_height/2, -(distance+spacing)*3+spacing/2, 0])
	braille_alphabet();
// main file
use <../braille-letter.scad>
use <../puzzle-base.scad>

spacing = 2.5;
distance = 5 + spacing;     
plate_height = 14;
plate_thickness = 2;
border = 2;

module base() {
	puzzle_base(
			plate_height + 2*border + 0.1,
			distance + 2*border + 0.1,
			plate_thickness,
			distance/1.3, 
			[2, 3]);
};

translate([ 0,  0, 0])
	base();
translate([26, 0, 0])
	base();
translate([ 0, 19, 0])
	base();
translate([26, 19, 0])
	base();

//translate([0, 45, plate_height])
//	rotate([90, 90, 0])
//	braille_str("ABCD");
